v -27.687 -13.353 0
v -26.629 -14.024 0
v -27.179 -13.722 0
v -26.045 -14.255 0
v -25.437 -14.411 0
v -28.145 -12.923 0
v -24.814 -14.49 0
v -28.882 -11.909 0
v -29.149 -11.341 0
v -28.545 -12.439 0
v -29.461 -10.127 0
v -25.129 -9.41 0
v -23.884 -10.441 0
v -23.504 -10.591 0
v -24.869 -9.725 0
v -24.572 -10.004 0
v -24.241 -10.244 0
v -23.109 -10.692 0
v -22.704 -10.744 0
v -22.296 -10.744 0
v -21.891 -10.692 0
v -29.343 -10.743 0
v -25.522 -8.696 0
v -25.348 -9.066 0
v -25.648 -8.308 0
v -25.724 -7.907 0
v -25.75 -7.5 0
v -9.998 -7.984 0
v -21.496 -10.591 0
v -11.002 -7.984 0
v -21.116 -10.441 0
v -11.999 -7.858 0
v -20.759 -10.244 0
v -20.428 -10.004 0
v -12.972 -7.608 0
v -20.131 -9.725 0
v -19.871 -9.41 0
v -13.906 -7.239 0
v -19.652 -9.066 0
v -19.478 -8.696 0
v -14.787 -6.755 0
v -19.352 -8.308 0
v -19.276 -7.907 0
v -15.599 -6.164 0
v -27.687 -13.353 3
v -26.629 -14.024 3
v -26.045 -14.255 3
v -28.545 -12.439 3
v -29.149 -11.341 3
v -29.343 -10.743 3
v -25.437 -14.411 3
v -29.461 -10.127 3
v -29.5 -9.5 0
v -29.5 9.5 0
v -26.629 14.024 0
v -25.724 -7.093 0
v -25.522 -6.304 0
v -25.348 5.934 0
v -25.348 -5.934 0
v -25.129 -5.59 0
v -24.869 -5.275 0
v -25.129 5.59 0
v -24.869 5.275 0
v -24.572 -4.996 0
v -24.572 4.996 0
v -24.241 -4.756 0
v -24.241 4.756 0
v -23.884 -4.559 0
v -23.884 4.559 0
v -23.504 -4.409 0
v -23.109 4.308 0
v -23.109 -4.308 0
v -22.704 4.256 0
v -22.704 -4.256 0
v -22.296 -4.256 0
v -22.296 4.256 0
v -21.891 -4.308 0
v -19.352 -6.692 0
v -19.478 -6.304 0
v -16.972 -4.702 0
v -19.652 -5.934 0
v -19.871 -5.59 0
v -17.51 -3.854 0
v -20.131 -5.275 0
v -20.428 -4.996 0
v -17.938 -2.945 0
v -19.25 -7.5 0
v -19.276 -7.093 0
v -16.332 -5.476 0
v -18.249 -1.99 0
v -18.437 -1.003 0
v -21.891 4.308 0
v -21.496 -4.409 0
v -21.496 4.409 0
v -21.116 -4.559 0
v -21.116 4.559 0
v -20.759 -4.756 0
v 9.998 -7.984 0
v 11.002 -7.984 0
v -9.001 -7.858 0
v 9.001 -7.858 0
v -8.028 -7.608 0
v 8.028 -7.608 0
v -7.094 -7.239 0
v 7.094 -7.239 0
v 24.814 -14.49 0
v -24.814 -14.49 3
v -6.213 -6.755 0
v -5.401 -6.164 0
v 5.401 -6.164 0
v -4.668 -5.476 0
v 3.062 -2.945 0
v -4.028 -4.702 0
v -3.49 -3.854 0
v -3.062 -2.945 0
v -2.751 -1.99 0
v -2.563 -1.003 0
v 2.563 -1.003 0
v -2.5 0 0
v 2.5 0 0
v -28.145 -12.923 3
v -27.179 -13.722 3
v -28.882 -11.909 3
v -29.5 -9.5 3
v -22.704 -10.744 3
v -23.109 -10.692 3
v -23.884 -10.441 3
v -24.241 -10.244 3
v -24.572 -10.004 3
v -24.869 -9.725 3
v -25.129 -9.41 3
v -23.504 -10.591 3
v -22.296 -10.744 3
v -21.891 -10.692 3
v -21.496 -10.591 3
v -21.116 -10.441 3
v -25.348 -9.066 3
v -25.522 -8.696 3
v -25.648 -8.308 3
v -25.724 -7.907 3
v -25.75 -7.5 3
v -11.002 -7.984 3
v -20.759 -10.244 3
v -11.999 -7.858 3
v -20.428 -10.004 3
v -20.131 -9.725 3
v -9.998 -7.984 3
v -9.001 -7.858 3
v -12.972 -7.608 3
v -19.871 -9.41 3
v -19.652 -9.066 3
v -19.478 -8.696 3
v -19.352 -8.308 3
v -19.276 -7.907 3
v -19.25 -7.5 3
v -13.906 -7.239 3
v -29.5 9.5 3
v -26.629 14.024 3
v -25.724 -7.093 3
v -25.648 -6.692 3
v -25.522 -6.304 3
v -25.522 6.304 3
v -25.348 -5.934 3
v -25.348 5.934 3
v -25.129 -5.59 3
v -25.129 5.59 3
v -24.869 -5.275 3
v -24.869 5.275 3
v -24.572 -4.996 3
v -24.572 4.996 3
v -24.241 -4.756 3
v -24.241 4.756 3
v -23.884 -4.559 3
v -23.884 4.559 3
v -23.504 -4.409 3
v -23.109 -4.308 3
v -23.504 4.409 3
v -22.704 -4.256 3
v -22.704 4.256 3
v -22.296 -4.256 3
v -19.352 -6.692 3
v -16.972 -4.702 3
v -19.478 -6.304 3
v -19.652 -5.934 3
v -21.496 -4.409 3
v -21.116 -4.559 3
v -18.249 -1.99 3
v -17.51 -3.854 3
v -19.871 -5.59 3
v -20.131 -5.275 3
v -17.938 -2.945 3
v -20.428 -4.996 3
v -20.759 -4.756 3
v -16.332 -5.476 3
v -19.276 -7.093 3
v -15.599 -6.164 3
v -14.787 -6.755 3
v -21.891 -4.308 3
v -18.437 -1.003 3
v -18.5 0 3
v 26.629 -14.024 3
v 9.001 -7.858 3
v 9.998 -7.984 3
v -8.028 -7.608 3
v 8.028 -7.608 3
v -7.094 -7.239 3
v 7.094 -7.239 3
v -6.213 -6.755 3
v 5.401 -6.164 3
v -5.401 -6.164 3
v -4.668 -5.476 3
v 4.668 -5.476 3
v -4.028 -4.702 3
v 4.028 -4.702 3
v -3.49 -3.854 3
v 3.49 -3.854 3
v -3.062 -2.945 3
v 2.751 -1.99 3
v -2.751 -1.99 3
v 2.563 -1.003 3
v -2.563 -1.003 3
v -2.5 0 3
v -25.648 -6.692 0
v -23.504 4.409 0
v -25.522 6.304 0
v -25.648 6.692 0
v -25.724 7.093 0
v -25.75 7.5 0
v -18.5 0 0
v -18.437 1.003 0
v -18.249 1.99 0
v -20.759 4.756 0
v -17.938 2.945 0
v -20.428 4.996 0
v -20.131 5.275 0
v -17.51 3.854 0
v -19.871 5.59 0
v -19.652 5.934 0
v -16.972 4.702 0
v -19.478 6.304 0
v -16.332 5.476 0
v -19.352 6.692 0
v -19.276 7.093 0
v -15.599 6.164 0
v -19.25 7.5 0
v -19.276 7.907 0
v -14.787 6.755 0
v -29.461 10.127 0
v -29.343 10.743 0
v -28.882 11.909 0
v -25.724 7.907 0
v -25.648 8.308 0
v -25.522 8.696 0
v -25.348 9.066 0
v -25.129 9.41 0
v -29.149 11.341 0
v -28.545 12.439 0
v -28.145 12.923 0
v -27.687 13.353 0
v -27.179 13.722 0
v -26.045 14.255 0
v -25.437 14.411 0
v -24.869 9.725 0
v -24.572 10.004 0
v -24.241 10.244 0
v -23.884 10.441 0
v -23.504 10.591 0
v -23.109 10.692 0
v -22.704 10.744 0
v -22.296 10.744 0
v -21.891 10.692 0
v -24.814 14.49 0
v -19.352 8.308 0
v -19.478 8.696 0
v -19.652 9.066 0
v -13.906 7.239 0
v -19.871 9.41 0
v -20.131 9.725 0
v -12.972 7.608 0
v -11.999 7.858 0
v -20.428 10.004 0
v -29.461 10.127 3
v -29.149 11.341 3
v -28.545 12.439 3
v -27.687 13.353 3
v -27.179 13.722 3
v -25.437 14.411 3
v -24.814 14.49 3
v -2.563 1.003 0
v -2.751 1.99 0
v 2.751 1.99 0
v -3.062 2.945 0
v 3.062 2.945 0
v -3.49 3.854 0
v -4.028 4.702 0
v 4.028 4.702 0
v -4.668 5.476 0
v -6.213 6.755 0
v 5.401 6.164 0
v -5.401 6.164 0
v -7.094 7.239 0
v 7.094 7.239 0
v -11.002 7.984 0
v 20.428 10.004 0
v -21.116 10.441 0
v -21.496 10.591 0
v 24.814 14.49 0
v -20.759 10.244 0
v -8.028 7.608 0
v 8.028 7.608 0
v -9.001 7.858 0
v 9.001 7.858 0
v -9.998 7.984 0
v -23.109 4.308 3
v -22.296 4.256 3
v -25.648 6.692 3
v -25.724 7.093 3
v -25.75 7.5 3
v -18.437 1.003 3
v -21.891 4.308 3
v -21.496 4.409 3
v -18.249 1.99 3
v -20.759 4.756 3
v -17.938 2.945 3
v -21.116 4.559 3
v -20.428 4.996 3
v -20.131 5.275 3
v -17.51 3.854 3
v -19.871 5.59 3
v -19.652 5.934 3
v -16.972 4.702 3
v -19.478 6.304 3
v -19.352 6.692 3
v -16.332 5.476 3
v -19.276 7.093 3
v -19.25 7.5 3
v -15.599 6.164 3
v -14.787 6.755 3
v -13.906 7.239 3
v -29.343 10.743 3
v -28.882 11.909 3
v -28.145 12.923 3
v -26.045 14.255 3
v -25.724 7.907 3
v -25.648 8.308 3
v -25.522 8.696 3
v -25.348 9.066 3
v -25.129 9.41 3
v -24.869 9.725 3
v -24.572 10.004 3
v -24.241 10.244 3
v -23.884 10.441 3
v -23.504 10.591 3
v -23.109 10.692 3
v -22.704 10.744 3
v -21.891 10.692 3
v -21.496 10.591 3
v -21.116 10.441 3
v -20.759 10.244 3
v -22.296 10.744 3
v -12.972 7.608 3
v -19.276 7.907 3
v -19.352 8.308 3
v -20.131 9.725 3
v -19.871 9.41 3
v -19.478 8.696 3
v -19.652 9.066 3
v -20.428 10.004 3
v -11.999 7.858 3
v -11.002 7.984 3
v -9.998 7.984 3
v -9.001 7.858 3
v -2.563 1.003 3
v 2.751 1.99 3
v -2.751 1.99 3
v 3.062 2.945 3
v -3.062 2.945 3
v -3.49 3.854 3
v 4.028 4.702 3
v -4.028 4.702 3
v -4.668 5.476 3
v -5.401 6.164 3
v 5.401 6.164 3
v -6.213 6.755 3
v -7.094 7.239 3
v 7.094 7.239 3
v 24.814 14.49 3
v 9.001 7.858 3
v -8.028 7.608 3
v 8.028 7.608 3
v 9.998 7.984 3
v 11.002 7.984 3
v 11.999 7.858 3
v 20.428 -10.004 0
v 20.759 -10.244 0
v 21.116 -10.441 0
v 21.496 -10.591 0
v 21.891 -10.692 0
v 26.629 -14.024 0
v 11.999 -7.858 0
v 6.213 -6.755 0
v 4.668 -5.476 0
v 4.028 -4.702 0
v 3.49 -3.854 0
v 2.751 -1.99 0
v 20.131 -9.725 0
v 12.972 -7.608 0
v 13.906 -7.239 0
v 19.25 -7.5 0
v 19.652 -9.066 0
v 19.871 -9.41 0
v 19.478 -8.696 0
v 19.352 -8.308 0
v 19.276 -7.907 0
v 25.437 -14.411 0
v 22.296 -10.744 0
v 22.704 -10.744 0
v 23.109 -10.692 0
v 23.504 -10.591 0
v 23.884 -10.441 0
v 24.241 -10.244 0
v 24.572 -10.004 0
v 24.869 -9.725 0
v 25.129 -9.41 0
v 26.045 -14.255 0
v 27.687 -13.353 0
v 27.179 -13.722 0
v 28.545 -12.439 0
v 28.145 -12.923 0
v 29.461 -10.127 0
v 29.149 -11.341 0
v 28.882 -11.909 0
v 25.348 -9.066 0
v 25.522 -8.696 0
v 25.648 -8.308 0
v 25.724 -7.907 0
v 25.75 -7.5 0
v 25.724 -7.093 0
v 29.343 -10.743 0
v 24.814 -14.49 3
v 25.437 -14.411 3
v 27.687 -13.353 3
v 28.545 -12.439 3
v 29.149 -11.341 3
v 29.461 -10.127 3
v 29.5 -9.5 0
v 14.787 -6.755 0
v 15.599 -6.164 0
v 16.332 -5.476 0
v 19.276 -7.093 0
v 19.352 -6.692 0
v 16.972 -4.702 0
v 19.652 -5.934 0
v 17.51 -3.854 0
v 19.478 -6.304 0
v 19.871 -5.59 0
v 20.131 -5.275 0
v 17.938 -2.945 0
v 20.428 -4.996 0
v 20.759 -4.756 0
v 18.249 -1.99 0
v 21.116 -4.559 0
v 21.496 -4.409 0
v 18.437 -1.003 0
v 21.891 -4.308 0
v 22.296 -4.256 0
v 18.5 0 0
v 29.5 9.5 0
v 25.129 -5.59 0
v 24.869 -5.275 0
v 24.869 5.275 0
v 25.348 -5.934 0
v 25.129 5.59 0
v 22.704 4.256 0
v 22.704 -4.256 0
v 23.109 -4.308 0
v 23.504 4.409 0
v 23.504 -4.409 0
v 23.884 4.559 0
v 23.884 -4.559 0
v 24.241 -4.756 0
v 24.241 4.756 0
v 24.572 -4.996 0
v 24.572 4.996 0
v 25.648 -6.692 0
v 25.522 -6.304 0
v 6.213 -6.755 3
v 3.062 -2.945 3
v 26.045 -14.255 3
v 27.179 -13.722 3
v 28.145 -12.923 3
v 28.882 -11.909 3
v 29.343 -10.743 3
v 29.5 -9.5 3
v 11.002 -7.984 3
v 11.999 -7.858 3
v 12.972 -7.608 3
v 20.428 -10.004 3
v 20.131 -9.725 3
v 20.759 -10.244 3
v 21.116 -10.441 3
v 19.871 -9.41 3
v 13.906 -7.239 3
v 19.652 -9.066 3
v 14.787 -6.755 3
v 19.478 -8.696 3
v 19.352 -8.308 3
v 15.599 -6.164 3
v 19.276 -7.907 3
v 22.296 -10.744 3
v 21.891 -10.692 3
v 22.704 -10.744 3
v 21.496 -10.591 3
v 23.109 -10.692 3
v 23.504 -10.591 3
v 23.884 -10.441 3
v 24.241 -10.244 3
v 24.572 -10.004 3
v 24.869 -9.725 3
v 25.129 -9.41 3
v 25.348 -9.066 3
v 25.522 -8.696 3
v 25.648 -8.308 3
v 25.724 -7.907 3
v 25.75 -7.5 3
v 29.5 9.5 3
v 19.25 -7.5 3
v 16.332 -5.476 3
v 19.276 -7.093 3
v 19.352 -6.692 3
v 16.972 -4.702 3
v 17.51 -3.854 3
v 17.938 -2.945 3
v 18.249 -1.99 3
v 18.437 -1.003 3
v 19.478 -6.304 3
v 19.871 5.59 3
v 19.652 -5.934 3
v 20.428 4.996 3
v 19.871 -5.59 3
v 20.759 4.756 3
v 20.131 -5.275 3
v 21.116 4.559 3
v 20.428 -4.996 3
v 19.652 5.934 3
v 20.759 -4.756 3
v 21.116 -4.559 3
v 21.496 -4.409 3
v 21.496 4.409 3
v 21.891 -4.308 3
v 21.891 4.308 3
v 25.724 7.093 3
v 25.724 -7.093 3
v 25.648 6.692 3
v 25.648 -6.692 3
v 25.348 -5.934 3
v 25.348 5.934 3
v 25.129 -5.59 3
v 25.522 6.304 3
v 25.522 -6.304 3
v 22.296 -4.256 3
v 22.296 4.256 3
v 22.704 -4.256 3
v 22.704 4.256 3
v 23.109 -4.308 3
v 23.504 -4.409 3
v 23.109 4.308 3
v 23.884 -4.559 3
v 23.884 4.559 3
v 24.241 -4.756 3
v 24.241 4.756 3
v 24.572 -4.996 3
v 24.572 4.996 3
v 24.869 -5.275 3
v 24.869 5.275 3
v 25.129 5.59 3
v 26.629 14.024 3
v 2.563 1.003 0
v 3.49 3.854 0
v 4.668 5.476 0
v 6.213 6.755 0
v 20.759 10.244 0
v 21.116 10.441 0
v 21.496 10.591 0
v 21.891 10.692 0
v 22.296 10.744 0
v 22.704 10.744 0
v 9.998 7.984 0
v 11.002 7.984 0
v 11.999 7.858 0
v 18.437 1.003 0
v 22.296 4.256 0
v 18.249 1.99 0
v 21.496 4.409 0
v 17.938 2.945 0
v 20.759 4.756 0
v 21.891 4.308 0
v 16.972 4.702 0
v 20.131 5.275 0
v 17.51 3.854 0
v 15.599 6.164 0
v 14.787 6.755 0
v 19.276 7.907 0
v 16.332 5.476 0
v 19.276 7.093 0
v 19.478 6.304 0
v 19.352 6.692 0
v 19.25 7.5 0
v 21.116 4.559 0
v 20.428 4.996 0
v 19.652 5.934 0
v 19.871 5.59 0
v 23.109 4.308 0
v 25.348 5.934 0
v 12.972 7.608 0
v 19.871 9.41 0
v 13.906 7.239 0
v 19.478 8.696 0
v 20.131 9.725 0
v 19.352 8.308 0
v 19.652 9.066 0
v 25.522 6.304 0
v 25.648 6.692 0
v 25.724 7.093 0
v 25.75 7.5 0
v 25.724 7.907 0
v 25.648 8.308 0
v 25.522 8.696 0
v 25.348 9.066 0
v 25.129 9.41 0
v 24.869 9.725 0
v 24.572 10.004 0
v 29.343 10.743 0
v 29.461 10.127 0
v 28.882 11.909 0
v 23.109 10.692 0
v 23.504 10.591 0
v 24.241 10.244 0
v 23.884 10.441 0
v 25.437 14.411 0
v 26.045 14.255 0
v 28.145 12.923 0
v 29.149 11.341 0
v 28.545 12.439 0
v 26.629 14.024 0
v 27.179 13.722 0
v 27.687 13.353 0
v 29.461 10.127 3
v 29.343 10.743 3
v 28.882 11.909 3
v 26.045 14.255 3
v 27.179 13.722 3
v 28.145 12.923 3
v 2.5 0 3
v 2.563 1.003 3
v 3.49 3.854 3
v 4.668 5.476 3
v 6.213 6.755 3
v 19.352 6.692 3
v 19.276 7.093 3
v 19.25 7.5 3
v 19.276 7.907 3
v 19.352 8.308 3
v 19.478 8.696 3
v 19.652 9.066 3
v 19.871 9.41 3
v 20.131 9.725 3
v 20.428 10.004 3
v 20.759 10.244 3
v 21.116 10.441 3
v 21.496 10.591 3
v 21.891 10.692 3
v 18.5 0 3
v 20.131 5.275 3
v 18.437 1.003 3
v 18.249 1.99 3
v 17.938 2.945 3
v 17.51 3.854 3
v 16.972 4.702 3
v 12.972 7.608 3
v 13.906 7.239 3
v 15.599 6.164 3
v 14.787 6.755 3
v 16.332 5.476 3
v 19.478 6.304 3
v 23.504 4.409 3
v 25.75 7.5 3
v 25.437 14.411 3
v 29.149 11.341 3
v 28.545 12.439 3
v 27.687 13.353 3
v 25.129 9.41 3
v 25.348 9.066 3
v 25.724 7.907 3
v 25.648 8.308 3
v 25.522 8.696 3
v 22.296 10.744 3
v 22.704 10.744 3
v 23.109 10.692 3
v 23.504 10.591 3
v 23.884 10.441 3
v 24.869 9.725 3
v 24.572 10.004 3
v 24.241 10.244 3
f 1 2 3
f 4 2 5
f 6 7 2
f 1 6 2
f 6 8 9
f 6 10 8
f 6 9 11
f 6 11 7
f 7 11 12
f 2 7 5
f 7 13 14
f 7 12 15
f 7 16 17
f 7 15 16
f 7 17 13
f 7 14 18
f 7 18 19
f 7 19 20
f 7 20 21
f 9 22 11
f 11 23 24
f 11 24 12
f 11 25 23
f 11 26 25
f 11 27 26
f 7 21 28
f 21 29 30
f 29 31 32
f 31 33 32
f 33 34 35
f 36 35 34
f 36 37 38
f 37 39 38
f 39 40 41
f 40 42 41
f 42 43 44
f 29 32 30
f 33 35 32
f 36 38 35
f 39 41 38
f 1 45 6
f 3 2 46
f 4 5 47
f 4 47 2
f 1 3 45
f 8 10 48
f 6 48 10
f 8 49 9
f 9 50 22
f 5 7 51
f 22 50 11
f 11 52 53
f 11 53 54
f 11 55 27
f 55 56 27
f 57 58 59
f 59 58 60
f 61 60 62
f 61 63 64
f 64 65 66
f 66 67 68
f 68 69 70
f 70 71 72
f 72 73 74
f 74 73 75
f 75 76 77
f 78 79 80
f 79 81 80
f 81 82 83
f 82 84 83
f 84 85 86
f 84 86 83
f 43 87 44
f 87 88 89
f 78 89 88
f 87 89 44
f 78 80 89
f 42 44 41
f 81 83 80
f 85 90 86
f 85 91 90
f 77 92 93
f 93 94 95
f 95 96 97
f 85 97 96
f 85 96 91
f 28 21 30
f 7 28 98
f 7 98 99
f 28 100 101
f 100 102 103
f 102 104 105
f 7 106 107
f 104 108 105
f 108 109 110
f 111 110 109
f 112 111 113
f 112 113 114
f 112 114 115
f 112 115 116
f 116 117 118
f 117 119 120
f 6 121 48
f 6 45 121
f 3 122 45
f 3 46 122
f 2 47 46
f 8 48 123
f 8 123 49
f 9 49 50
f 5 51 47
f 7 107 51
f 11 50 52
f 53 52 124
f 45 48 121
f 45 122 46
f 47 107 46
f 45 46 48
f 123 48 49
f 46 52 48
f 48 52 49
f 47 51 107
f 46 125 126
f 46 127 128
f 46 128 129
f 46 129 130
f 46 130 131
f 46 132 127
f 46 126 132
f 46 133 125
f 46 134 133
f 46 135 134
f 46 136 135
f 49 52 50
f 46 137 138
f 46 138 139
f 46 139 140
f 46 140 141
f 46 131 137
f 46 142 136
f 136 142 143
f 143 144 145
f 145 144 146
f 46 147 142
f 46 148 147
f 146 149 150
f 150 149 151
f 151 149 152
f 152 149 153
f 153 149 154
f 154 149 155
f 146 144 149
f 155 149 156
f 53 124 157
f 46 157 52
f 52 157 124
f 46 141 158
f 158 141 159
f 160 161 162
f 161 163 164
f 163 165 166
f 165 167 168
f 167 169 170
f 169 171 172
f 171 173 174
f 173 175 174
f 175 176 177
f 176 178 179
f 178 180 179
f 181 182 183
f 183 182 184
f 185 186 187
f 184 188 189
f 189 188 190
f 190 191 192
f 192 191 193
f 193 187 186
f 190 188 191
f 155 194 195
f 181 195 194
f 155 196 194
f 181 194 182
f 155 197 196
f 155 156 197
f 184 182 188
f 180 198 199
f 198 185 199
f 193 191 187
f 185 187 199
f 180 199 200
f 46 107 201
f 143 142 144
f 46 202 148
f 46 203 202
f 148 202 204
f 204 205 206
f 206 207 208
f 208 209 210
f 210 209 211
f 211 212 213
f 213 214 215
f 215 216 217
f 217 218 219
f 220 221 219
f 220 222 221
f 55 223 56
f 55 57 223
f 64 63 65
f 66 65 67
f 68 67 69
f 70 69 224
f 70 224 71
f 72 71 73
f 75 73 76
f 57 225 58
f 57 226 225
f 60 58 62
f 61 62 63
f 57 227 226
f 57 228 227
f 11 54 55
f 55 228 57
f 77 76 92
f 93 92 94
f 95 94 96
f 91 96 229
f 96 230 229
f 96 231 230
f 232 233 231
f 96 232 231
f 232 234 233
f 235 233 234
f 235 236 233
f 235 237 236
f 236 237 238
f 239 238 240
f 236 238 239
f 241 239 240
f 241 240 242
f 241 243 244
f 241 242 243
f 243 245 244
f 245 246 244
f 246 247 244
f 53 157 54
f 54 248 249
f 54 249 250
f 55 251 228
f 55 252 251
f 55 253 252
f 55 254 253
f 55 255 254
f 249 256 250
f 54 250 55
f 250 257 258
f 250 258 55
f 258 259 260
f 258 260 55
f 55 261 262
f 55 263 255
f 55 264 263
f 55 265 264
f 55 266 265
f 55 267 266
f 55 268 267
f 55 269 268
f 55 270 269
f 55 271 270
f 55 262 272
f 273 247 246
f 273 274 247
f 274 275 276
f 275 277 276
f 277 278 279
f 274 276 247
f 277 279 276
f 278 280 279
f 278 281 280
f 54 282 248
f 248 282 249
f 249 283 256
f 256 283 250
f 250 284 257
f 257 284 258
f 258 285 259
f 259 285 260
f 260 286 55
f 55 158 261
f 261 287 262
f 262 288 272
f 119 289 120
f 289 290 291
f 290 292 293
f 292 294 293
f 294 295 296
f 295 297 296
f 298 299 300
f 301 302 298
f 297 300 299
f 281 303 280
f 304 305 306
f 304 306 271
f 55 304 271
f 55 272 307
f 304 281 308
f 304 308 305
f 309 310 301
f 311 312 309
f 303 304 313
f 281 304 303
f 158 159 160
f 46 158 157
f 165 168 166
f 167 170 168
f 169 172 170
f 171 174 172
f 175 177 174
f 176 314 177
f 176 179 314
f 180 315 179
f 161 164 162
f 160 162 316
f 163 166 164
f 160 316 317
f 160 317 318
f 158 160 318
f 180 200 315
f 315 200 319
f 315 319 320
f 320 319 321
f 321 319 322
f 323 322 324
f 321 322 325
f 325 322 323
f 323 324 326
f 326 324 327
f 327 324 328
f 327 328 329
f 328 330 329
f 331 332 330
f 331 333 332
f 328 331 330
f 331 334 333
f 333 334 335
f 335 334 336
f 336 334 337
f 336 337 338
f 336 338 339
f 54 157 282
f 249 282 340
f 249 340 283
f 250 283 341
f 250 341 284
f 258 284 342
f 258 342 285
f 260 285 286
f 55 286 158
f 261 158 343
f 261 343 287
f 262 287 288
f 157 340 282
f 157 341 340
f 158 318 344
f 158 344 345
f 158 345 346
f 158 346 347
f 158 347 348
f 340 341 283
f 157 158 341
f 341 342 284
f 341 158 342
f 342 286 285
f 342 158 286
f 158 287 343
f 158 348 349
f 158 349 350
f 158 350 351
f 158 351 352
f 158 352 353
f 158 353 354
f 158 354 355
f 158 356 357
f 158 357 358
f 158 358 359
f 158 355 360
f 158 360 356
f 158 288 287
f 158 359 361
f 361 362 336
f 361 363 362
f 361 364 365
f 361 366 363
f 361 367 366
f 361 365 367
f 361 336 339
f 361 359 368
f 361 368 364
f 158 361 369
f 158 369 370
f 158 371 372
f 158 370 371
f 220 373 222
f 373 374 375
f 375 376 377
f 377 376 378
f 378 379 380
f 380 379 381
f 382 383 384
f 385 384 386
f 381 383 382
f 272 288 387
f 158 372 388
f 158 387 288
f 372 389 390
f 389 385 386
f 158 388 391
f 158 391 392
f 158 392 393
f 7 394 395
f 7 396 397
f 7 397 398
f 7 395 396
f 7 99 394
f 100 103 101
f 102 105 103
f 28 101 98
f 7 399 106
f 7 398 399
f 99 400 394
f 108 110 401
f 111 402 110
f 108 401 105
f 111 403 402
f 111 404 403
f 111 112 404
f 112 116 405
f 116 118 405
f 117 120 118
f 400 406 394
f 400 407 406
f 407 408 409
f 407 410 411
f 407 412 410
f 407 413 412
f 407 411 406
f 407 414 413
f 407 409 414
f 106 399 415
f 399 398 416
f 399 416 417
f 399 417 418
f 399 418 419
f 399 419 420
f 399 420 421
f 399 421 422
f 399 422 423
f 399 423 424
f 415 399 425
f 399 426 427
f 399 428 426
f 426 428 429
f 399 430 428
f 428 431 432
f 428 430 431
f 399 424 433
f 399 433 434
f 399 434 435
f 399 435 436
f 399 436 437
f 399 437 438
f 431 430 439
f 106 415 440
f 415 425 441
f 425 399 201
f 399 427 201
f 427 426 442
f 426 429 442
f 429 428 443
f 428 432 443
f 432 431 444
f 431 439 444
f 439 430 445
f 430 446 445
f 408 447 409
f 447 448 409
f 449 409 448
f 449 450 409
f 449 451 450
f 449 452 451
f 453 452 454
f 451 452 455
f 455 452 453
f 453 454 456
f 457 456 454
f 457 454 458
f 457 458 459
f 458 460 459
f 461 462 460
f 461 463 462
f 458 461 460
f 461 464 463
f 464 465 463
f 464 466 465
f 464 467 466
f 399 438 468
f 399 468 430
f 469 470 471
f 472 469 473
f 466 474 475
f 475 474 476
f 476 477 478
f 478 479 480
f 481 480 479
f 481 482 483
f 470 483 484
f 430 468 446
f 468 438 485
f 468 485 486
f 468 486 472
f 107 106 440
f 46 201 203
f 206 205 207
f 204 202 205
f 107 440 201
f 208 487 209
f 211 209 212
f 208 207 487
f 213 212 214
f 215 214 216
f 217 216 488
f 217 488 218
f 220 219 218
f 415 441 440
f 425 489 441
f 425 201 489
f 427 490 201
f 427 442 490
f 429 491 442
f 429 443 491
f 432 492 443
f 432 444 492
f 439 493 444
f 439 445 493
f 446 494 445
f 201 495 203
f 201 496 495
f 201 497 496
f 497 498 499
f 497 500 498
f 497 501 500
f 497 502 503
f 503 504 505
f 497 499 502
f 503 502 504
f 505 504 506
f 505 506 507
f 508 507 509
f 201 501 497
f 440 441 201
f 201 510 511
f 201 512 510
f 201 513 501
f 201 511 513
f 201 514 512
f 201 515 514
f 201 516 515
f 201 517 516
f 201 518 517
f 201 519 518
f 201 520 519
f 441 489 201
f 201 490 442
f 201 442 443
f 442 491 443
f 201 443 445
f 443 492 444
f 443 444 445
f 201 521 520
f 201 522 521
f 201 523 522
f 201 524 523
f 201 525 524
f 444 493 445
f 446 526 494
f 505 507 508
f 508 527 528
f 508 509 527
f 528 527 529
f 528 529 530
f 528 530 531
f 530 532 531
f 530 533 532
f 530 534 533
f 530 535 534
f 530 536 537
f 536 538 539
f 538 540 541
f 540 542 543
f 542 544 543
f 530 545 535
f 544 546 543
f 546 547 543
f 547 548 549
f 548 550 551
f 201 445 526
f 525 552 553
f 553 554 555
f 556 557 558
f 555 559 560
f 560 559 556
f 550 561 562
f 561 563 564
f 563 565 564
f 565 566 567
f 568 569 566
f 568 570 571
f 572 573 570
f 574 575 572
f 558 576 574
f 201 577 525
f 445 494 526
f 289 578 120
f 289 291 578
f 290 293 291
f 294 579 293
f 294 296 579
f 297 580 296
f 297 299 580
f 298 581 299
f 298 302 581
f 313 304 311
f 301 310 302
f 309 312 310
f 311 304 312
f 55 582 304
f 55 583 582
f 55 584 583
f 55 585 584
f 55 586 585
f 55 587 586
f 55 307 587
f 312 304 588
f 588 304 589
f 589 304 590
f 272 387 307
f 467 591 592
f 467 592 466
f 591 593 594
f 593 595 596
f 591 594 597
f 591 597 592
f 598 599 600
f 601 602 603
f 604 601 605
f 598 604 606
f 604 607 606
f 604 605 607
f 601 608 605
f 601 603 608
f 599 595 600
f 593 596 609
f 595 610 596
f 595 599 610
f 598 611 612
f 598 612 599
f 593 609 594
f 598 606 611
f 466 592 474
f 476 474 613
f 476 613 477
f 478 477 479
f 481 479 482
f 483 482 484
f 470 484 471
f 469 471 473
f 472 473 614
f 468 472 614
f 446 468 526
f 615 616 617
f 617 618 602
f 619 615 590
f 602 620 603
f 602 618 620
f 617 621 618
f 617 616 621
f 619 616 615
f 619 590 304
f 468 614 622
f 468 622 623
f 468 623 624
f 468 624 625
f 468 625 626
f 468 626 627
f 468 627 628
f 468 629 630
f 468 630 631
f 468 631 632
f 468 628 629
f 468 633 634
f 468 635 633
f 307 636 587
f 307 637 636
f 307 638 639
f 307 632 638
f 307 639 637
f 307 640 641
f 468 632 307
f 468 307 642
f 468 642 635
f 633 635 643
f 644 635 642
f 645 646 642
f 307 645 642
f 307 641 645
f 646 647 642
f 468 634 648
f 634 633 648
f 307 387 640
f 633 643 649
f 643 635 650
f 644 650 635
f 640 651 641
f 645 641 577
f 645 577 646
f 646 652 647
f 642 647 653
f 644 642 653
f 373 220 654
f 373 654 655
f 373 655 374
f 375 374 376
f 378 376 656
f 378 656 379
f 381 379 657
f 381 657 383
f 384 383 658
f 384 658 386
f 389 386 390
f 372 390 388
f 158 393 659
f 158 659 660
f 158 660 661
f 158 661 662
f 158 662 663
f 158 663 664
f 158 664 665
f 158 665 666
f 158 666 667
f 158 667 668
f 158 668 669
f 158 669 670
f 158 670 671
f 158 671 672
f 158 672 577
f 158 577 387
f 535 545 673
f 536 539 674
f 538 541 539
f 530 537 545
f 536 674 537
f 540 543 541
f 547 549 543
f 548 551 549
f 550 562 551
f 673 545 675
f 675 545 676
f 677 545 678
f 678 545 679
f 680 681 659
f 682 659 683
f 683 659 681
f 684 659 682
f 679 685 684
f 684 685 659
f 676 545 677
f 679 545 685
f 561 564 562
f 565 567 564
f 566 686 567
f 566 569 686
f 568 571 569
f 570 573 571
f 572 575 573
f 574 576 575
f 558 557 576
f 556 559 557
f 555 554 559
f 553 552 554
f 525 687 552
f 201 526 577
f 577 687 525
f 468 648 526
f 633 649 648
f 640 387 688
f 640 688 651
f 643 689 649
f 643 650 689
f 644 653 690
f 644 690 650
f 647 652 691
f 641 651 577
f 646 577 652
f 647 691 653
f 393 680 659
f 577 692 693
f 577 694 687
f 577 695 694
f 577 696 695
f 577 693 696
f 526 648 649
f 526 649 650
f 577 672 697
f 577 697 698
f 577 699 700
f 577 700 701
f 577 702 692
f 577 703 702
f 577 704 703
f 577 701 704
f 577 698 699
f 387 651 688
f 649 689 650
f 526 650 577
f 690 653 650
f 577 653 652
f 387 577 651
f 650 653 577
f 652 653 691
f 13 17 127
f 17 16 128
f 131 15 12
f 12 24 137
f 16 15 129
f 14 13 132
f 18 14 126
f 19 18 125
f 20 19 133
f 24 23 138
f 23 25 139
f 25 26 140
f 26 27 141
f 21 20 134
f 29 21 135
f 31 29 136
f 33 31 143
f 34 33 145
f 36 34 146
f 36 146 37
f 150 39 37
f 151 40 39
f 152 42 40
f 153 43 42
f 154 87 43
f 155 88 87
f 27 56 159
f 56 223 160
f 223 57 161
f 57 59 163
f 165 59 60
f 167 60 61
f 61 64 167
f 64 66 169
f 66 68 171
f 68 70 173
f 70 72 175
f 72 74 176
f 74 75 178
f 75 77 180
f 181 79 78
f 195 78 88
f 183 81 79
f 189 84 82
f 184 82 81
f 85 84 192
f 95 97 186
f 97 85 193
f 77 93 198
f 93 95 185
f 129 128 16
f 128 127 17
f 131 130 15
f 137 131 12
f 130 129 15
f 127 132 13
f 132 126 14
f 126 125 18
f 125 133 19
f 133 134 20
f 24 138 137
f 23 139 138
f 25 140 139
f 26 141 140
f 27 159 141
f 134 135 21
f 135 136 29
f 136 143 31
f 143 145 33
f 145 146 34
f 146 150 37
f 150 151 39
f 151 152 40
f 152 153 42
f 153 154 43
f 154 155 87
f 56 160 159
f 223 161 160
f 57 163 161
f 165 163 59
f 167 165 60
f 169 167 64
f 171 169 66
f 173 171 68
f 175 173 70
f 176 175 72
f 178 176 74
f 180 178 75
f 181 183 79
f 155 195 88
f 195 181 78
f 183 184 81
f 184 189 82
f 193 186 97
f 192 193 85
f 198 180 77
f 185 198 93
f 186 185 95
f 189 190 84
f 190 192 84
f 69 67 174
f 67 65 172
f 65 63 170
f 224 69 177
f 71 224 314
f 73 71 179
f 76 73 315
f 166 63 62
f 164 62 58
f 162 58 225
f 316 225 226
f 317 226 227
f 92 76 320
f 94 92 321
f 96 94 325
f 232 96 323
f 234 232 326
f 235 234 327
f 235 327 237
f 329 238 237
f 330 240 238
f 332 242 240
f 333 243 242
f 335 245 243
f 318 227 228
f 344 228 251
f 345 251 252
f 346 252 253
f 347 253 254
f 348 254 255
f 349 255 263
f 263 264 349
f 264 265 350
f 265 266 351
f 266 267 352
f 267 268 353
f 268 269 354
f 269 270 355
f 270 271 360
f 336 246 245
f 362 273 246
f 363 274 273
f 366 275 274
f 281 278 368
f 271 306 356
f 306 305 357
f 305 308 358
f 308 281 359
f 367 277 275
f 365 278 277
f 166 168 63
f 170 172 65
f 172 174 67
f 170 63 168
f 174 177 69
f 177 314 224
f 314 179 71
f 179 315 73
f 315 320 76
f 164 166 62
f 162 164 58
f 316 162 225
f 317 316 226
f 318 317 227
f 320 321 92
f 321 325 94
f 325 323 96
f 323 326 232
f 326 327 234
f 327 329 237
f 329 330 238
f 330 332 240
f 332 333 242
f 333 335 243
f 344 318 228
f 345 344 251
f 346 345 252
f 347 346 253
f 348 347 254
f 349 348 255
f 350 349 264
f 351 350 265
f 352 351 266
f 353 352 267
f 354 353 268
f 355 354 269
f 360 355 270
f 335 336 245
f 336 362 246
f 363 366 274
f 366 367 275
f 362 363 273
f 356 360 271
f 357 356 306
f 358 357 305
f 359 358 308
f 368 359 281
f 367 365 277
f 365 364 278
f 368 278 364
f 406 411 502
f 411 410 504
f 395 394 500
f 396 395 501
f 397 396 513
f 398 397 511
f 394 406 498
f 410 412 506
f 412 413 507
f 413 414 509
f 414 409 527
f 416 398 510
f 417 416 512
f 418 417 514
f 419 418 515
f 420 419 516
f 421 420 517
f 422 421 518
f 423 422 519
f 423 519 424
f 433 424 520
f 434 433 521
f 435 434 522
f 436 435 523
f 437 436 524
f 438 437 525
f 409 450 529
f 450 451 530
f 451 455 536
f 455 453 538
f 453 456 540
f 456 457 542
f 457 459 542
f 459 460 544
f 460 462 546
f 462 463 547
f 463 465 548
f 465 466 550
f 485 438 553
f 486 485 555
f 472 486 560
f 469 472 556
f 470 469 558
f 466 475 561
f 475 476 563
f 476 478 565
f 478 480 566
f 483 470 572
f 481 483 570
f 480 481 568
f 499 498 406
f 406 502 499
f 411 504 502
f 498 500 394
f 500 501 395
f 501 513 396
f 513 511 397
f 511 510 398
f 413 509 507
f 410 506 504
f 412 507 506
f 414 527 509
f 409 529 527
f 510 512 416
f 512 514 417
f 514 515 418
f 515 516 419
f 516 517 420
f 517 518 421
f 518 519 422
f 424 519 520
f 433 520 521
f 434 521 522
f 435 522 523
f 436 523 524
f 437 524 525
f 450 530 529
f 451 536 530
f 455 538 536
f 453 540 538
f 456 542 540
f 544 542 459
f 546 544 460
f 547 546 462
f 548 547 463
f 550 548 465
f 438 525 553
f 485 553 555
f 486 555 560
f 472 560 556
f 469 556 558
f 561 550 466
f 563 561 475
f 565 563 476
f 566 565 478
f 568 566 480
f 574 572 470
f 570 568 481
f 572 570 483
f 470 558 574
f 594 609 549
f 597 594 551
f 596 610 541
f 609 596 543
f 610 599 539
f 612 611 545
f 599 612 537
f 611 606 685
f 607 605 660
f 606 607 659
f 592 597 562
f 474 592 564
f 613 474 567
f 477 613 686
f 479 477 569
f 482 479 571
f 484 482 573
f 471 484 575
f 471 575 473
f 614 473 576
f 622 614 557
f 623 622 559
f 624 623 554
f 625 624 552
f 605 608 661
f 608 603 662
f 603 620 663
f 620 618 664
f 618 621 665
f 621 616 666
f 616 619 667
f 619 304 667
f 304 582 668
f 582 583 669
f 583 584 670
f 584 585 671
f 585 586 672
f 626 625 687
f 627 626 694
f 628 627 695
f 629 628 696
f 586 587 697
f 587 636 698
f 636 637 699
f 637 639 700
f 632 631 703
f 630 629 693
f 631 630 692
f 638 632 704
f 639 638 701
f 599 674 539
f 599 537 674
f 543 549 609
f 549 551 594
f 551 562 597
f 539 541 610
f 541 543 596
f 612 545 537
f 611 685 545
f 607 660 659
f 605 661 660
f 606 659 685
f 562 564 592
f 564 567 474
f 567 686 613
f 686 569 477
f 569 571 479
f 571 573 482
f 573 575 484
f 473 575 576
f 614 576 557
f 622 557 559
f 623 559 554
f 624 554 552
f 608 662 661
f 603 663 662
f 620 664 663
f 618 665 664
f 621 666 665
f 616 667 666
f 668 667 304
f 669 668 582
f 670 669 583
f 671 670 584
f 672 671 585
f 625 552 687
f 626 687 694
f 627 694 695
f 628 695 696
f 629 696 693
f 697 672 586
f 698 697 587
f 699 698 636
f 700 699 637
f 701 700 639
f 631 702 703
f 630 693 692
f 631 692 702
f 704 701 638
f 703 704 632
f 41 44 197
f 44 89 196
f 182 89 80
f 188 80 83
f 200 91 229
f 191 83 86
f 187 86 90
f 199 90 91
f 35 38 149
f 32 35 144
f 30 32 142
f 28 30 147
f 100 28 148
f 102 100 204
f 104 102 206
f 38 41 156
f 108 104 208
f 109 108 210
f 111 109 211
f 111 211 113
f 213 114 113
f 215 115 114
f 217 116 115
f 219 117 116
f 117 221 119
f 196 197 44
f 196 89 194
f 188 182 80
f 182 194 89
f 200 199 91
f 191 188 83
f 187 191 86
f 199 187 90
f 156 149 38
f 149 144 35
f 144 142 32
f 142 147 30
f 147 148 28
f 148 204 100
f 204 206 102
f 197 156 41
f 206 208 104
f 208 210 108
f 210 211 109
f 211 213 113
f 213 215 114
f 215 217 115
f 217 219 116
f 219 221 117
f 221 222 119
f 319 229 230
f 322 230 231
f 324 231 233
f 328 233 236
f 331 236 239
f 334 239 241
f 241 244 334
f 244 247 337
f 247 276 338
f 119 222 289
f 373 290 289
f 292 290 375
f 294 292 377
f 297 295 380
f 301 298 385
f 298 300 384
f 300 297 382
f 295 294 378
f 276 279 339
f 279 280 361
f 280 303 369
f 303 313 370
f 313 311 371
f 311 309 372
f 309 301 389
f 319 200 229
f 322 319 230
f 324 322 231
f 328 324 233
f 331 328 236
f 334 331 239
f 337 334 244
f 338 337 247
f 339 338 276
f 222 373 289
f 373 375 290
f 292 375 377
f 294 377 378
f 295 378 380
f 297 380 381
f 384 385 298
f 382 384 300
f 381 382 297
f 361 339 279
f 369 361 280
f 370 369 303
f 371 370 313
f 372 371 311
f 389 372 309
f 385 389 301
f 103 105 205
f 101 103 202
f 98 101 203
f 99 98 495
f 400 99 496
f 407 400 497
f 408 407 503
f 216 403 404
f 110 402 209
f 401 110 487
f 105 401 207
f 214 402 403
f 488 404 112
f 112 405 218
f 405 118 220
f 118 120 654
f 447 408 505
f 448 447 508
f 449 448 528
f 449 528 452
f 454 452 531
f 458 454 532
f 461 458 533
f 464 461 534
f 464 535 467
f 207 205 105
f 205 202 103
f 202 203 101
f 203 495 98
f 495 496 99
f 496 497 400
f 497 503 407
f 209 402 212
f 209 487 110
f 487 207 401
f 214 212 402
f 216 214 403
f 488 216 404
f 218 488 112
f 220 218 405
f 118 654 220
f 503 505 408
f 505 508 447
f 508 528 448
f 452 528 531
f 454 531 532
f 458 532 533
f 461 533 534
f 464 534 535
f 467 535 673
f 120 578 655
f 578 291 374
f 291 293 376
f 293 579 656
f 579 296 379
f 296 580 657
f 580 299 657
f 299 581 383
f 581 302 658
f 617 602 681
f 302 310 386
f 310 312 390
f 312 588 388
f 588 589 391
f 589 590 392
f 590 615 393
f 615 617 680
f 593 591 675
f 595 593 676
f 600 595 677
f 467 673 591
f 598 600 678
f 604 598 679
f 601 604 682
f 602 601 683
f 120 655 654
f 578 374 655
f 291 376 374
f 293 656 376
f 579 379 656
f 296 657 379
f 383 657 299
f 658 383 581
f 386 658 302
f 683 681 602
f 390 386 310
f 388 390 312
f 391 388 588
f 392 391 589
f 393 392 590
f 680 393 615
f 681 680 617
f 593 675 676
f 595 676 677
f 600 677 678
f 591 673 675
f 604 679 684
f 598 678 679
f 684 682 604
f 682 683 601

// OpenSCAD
$fn = 50;

difference() {
	union() {
		hull() {
			translate(v = [-24.5, 9.5, 0]) {
				cylinder(h = 3, r = 5);
			}
			translate(v = [24.5, 9.5, 0]) {
				cylinder(h = 3, r = 5);
			}
			translate(v = [-24.5, -9.5, 0]) {
				cylinder(h = 3, r = 5);
			}
			translate(v = [24.5, -9.5, 0]) {
				cylinder(h = 3, r = 5);
			}
		}
	}
	union() {
		translate(v = [-22.5, -7.5, 0]) {
			cylinder(h = 3, r = 3.25);
		}
		translate(v = [-22.5, 7.5, 0]) {
			cylinder(h = 3, r = 3.25);
		}
		translate(v = [22.5, -7.5, 0]) {
			cylinder(h = 3, r = 3.25);
		}
		translate(v = [22.5, 7.5, 0]) {
			cylinder(h = 3, r = 3.25);
		}
		translate(v = [-10.5, 0, 0.0]) {
			cylinder(h = 3, r = 8.0);
		}
		translate(v = [10.5, 0, 0.0]) {
			cylinder(h = 3, r = 8.0);
		}
	}
}
